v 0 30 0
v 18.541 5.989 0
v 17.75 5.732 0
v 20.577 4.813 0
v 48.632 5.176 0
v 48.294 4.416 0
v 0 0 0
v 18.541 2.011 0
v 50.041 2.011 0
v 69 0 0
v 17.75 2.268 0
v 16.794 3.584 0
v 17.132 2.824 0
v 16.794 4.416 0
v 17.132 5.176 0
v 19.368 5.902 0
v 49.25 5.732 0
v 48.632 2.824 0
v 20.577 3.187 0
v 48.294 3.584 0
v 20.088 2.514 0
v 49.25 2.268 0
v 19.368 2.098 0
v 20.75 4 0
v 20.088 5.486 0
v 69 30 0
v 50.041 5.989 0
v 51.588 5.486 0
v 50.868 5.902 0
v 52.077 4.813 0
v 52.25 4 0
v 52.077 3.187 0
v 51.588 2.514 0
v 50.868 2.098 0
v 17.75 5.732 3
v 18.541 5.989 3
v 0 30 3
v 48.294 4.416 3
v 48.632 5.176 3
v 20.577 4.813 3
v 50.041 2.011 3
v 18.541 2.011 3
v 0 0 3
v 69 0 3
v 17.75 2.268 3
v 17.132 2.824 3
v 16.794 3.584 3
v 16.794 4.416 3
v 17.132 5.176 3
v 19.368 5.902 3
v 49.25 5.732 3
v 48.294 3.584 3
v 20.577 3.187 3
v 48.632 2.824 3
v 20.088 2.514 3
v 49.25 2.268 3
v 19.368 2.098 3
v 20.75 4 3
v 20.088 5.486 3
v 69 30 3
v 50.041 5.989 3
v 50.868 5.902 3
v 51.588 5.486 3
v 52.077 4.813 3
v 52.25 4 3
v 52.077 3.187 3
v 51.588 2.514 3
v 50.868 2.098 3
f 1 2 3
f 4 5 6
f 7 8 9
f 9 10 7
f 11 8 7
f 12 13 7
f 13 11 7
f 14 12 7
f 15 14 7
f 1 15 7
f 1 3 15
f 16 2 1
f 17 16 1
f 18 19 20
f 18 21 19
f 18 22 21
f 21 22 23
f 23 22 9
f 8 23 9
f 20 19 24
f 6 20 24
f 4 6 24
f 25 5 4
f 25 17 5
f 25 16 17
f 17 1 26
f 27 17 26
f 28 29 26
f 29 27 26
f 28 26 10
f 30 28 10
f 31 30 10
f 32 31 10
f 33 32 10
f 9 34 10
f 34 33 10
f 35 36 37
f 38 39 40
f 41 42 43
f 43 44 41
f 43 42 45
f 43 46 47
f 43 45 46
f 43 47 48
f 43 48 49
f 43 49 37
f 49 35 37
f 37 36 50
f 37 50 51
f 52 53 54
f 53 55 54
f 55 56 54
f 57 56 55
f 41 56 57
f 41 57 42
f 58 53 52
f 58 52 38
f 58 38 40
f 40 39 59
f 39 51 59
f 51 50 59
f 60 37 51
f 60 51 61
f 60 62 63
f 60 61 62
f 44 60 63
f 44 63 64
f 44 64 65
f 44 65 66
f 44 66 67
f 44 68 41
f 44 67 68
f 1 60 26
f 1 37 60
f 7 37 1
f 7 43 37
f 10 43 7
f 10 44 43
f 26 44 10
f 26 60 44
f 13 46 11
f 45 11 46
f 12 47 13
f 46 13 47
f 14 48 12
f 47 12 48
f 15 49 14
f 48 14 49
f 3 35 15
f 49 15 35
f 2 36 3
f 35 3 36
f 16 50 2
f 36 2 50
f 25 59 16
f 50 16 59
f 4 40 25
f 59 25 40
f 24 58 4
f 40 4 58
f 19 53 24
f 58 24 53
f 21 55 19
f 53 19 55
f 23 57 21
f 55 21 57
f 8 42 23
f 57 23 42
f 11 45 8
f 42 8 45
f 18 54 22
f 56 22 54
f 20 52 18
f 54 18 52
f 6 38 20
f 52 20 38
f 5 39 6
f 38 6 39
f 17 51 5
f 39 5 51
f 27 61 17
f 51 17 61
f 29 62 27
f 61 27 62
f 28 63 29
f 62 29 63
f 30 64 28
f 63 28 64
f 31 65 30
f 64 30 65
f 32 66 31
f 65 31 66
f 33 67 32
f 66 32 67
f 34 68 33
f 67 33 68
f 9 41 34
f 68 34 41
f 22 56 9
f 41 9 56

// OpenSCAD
module face_2d() {
    difference() {
        // Main shape
        square([69,30]);
        
        // Screw holes
        translate([18.75, 4])
            circle(r=2, $fn=15);
        
        translate([50.25, 4])
            circle(r=2, $fn=15);
    }
}

module face() {
    linear_extrude(3) {
        face_2d();
    }
}

face();
